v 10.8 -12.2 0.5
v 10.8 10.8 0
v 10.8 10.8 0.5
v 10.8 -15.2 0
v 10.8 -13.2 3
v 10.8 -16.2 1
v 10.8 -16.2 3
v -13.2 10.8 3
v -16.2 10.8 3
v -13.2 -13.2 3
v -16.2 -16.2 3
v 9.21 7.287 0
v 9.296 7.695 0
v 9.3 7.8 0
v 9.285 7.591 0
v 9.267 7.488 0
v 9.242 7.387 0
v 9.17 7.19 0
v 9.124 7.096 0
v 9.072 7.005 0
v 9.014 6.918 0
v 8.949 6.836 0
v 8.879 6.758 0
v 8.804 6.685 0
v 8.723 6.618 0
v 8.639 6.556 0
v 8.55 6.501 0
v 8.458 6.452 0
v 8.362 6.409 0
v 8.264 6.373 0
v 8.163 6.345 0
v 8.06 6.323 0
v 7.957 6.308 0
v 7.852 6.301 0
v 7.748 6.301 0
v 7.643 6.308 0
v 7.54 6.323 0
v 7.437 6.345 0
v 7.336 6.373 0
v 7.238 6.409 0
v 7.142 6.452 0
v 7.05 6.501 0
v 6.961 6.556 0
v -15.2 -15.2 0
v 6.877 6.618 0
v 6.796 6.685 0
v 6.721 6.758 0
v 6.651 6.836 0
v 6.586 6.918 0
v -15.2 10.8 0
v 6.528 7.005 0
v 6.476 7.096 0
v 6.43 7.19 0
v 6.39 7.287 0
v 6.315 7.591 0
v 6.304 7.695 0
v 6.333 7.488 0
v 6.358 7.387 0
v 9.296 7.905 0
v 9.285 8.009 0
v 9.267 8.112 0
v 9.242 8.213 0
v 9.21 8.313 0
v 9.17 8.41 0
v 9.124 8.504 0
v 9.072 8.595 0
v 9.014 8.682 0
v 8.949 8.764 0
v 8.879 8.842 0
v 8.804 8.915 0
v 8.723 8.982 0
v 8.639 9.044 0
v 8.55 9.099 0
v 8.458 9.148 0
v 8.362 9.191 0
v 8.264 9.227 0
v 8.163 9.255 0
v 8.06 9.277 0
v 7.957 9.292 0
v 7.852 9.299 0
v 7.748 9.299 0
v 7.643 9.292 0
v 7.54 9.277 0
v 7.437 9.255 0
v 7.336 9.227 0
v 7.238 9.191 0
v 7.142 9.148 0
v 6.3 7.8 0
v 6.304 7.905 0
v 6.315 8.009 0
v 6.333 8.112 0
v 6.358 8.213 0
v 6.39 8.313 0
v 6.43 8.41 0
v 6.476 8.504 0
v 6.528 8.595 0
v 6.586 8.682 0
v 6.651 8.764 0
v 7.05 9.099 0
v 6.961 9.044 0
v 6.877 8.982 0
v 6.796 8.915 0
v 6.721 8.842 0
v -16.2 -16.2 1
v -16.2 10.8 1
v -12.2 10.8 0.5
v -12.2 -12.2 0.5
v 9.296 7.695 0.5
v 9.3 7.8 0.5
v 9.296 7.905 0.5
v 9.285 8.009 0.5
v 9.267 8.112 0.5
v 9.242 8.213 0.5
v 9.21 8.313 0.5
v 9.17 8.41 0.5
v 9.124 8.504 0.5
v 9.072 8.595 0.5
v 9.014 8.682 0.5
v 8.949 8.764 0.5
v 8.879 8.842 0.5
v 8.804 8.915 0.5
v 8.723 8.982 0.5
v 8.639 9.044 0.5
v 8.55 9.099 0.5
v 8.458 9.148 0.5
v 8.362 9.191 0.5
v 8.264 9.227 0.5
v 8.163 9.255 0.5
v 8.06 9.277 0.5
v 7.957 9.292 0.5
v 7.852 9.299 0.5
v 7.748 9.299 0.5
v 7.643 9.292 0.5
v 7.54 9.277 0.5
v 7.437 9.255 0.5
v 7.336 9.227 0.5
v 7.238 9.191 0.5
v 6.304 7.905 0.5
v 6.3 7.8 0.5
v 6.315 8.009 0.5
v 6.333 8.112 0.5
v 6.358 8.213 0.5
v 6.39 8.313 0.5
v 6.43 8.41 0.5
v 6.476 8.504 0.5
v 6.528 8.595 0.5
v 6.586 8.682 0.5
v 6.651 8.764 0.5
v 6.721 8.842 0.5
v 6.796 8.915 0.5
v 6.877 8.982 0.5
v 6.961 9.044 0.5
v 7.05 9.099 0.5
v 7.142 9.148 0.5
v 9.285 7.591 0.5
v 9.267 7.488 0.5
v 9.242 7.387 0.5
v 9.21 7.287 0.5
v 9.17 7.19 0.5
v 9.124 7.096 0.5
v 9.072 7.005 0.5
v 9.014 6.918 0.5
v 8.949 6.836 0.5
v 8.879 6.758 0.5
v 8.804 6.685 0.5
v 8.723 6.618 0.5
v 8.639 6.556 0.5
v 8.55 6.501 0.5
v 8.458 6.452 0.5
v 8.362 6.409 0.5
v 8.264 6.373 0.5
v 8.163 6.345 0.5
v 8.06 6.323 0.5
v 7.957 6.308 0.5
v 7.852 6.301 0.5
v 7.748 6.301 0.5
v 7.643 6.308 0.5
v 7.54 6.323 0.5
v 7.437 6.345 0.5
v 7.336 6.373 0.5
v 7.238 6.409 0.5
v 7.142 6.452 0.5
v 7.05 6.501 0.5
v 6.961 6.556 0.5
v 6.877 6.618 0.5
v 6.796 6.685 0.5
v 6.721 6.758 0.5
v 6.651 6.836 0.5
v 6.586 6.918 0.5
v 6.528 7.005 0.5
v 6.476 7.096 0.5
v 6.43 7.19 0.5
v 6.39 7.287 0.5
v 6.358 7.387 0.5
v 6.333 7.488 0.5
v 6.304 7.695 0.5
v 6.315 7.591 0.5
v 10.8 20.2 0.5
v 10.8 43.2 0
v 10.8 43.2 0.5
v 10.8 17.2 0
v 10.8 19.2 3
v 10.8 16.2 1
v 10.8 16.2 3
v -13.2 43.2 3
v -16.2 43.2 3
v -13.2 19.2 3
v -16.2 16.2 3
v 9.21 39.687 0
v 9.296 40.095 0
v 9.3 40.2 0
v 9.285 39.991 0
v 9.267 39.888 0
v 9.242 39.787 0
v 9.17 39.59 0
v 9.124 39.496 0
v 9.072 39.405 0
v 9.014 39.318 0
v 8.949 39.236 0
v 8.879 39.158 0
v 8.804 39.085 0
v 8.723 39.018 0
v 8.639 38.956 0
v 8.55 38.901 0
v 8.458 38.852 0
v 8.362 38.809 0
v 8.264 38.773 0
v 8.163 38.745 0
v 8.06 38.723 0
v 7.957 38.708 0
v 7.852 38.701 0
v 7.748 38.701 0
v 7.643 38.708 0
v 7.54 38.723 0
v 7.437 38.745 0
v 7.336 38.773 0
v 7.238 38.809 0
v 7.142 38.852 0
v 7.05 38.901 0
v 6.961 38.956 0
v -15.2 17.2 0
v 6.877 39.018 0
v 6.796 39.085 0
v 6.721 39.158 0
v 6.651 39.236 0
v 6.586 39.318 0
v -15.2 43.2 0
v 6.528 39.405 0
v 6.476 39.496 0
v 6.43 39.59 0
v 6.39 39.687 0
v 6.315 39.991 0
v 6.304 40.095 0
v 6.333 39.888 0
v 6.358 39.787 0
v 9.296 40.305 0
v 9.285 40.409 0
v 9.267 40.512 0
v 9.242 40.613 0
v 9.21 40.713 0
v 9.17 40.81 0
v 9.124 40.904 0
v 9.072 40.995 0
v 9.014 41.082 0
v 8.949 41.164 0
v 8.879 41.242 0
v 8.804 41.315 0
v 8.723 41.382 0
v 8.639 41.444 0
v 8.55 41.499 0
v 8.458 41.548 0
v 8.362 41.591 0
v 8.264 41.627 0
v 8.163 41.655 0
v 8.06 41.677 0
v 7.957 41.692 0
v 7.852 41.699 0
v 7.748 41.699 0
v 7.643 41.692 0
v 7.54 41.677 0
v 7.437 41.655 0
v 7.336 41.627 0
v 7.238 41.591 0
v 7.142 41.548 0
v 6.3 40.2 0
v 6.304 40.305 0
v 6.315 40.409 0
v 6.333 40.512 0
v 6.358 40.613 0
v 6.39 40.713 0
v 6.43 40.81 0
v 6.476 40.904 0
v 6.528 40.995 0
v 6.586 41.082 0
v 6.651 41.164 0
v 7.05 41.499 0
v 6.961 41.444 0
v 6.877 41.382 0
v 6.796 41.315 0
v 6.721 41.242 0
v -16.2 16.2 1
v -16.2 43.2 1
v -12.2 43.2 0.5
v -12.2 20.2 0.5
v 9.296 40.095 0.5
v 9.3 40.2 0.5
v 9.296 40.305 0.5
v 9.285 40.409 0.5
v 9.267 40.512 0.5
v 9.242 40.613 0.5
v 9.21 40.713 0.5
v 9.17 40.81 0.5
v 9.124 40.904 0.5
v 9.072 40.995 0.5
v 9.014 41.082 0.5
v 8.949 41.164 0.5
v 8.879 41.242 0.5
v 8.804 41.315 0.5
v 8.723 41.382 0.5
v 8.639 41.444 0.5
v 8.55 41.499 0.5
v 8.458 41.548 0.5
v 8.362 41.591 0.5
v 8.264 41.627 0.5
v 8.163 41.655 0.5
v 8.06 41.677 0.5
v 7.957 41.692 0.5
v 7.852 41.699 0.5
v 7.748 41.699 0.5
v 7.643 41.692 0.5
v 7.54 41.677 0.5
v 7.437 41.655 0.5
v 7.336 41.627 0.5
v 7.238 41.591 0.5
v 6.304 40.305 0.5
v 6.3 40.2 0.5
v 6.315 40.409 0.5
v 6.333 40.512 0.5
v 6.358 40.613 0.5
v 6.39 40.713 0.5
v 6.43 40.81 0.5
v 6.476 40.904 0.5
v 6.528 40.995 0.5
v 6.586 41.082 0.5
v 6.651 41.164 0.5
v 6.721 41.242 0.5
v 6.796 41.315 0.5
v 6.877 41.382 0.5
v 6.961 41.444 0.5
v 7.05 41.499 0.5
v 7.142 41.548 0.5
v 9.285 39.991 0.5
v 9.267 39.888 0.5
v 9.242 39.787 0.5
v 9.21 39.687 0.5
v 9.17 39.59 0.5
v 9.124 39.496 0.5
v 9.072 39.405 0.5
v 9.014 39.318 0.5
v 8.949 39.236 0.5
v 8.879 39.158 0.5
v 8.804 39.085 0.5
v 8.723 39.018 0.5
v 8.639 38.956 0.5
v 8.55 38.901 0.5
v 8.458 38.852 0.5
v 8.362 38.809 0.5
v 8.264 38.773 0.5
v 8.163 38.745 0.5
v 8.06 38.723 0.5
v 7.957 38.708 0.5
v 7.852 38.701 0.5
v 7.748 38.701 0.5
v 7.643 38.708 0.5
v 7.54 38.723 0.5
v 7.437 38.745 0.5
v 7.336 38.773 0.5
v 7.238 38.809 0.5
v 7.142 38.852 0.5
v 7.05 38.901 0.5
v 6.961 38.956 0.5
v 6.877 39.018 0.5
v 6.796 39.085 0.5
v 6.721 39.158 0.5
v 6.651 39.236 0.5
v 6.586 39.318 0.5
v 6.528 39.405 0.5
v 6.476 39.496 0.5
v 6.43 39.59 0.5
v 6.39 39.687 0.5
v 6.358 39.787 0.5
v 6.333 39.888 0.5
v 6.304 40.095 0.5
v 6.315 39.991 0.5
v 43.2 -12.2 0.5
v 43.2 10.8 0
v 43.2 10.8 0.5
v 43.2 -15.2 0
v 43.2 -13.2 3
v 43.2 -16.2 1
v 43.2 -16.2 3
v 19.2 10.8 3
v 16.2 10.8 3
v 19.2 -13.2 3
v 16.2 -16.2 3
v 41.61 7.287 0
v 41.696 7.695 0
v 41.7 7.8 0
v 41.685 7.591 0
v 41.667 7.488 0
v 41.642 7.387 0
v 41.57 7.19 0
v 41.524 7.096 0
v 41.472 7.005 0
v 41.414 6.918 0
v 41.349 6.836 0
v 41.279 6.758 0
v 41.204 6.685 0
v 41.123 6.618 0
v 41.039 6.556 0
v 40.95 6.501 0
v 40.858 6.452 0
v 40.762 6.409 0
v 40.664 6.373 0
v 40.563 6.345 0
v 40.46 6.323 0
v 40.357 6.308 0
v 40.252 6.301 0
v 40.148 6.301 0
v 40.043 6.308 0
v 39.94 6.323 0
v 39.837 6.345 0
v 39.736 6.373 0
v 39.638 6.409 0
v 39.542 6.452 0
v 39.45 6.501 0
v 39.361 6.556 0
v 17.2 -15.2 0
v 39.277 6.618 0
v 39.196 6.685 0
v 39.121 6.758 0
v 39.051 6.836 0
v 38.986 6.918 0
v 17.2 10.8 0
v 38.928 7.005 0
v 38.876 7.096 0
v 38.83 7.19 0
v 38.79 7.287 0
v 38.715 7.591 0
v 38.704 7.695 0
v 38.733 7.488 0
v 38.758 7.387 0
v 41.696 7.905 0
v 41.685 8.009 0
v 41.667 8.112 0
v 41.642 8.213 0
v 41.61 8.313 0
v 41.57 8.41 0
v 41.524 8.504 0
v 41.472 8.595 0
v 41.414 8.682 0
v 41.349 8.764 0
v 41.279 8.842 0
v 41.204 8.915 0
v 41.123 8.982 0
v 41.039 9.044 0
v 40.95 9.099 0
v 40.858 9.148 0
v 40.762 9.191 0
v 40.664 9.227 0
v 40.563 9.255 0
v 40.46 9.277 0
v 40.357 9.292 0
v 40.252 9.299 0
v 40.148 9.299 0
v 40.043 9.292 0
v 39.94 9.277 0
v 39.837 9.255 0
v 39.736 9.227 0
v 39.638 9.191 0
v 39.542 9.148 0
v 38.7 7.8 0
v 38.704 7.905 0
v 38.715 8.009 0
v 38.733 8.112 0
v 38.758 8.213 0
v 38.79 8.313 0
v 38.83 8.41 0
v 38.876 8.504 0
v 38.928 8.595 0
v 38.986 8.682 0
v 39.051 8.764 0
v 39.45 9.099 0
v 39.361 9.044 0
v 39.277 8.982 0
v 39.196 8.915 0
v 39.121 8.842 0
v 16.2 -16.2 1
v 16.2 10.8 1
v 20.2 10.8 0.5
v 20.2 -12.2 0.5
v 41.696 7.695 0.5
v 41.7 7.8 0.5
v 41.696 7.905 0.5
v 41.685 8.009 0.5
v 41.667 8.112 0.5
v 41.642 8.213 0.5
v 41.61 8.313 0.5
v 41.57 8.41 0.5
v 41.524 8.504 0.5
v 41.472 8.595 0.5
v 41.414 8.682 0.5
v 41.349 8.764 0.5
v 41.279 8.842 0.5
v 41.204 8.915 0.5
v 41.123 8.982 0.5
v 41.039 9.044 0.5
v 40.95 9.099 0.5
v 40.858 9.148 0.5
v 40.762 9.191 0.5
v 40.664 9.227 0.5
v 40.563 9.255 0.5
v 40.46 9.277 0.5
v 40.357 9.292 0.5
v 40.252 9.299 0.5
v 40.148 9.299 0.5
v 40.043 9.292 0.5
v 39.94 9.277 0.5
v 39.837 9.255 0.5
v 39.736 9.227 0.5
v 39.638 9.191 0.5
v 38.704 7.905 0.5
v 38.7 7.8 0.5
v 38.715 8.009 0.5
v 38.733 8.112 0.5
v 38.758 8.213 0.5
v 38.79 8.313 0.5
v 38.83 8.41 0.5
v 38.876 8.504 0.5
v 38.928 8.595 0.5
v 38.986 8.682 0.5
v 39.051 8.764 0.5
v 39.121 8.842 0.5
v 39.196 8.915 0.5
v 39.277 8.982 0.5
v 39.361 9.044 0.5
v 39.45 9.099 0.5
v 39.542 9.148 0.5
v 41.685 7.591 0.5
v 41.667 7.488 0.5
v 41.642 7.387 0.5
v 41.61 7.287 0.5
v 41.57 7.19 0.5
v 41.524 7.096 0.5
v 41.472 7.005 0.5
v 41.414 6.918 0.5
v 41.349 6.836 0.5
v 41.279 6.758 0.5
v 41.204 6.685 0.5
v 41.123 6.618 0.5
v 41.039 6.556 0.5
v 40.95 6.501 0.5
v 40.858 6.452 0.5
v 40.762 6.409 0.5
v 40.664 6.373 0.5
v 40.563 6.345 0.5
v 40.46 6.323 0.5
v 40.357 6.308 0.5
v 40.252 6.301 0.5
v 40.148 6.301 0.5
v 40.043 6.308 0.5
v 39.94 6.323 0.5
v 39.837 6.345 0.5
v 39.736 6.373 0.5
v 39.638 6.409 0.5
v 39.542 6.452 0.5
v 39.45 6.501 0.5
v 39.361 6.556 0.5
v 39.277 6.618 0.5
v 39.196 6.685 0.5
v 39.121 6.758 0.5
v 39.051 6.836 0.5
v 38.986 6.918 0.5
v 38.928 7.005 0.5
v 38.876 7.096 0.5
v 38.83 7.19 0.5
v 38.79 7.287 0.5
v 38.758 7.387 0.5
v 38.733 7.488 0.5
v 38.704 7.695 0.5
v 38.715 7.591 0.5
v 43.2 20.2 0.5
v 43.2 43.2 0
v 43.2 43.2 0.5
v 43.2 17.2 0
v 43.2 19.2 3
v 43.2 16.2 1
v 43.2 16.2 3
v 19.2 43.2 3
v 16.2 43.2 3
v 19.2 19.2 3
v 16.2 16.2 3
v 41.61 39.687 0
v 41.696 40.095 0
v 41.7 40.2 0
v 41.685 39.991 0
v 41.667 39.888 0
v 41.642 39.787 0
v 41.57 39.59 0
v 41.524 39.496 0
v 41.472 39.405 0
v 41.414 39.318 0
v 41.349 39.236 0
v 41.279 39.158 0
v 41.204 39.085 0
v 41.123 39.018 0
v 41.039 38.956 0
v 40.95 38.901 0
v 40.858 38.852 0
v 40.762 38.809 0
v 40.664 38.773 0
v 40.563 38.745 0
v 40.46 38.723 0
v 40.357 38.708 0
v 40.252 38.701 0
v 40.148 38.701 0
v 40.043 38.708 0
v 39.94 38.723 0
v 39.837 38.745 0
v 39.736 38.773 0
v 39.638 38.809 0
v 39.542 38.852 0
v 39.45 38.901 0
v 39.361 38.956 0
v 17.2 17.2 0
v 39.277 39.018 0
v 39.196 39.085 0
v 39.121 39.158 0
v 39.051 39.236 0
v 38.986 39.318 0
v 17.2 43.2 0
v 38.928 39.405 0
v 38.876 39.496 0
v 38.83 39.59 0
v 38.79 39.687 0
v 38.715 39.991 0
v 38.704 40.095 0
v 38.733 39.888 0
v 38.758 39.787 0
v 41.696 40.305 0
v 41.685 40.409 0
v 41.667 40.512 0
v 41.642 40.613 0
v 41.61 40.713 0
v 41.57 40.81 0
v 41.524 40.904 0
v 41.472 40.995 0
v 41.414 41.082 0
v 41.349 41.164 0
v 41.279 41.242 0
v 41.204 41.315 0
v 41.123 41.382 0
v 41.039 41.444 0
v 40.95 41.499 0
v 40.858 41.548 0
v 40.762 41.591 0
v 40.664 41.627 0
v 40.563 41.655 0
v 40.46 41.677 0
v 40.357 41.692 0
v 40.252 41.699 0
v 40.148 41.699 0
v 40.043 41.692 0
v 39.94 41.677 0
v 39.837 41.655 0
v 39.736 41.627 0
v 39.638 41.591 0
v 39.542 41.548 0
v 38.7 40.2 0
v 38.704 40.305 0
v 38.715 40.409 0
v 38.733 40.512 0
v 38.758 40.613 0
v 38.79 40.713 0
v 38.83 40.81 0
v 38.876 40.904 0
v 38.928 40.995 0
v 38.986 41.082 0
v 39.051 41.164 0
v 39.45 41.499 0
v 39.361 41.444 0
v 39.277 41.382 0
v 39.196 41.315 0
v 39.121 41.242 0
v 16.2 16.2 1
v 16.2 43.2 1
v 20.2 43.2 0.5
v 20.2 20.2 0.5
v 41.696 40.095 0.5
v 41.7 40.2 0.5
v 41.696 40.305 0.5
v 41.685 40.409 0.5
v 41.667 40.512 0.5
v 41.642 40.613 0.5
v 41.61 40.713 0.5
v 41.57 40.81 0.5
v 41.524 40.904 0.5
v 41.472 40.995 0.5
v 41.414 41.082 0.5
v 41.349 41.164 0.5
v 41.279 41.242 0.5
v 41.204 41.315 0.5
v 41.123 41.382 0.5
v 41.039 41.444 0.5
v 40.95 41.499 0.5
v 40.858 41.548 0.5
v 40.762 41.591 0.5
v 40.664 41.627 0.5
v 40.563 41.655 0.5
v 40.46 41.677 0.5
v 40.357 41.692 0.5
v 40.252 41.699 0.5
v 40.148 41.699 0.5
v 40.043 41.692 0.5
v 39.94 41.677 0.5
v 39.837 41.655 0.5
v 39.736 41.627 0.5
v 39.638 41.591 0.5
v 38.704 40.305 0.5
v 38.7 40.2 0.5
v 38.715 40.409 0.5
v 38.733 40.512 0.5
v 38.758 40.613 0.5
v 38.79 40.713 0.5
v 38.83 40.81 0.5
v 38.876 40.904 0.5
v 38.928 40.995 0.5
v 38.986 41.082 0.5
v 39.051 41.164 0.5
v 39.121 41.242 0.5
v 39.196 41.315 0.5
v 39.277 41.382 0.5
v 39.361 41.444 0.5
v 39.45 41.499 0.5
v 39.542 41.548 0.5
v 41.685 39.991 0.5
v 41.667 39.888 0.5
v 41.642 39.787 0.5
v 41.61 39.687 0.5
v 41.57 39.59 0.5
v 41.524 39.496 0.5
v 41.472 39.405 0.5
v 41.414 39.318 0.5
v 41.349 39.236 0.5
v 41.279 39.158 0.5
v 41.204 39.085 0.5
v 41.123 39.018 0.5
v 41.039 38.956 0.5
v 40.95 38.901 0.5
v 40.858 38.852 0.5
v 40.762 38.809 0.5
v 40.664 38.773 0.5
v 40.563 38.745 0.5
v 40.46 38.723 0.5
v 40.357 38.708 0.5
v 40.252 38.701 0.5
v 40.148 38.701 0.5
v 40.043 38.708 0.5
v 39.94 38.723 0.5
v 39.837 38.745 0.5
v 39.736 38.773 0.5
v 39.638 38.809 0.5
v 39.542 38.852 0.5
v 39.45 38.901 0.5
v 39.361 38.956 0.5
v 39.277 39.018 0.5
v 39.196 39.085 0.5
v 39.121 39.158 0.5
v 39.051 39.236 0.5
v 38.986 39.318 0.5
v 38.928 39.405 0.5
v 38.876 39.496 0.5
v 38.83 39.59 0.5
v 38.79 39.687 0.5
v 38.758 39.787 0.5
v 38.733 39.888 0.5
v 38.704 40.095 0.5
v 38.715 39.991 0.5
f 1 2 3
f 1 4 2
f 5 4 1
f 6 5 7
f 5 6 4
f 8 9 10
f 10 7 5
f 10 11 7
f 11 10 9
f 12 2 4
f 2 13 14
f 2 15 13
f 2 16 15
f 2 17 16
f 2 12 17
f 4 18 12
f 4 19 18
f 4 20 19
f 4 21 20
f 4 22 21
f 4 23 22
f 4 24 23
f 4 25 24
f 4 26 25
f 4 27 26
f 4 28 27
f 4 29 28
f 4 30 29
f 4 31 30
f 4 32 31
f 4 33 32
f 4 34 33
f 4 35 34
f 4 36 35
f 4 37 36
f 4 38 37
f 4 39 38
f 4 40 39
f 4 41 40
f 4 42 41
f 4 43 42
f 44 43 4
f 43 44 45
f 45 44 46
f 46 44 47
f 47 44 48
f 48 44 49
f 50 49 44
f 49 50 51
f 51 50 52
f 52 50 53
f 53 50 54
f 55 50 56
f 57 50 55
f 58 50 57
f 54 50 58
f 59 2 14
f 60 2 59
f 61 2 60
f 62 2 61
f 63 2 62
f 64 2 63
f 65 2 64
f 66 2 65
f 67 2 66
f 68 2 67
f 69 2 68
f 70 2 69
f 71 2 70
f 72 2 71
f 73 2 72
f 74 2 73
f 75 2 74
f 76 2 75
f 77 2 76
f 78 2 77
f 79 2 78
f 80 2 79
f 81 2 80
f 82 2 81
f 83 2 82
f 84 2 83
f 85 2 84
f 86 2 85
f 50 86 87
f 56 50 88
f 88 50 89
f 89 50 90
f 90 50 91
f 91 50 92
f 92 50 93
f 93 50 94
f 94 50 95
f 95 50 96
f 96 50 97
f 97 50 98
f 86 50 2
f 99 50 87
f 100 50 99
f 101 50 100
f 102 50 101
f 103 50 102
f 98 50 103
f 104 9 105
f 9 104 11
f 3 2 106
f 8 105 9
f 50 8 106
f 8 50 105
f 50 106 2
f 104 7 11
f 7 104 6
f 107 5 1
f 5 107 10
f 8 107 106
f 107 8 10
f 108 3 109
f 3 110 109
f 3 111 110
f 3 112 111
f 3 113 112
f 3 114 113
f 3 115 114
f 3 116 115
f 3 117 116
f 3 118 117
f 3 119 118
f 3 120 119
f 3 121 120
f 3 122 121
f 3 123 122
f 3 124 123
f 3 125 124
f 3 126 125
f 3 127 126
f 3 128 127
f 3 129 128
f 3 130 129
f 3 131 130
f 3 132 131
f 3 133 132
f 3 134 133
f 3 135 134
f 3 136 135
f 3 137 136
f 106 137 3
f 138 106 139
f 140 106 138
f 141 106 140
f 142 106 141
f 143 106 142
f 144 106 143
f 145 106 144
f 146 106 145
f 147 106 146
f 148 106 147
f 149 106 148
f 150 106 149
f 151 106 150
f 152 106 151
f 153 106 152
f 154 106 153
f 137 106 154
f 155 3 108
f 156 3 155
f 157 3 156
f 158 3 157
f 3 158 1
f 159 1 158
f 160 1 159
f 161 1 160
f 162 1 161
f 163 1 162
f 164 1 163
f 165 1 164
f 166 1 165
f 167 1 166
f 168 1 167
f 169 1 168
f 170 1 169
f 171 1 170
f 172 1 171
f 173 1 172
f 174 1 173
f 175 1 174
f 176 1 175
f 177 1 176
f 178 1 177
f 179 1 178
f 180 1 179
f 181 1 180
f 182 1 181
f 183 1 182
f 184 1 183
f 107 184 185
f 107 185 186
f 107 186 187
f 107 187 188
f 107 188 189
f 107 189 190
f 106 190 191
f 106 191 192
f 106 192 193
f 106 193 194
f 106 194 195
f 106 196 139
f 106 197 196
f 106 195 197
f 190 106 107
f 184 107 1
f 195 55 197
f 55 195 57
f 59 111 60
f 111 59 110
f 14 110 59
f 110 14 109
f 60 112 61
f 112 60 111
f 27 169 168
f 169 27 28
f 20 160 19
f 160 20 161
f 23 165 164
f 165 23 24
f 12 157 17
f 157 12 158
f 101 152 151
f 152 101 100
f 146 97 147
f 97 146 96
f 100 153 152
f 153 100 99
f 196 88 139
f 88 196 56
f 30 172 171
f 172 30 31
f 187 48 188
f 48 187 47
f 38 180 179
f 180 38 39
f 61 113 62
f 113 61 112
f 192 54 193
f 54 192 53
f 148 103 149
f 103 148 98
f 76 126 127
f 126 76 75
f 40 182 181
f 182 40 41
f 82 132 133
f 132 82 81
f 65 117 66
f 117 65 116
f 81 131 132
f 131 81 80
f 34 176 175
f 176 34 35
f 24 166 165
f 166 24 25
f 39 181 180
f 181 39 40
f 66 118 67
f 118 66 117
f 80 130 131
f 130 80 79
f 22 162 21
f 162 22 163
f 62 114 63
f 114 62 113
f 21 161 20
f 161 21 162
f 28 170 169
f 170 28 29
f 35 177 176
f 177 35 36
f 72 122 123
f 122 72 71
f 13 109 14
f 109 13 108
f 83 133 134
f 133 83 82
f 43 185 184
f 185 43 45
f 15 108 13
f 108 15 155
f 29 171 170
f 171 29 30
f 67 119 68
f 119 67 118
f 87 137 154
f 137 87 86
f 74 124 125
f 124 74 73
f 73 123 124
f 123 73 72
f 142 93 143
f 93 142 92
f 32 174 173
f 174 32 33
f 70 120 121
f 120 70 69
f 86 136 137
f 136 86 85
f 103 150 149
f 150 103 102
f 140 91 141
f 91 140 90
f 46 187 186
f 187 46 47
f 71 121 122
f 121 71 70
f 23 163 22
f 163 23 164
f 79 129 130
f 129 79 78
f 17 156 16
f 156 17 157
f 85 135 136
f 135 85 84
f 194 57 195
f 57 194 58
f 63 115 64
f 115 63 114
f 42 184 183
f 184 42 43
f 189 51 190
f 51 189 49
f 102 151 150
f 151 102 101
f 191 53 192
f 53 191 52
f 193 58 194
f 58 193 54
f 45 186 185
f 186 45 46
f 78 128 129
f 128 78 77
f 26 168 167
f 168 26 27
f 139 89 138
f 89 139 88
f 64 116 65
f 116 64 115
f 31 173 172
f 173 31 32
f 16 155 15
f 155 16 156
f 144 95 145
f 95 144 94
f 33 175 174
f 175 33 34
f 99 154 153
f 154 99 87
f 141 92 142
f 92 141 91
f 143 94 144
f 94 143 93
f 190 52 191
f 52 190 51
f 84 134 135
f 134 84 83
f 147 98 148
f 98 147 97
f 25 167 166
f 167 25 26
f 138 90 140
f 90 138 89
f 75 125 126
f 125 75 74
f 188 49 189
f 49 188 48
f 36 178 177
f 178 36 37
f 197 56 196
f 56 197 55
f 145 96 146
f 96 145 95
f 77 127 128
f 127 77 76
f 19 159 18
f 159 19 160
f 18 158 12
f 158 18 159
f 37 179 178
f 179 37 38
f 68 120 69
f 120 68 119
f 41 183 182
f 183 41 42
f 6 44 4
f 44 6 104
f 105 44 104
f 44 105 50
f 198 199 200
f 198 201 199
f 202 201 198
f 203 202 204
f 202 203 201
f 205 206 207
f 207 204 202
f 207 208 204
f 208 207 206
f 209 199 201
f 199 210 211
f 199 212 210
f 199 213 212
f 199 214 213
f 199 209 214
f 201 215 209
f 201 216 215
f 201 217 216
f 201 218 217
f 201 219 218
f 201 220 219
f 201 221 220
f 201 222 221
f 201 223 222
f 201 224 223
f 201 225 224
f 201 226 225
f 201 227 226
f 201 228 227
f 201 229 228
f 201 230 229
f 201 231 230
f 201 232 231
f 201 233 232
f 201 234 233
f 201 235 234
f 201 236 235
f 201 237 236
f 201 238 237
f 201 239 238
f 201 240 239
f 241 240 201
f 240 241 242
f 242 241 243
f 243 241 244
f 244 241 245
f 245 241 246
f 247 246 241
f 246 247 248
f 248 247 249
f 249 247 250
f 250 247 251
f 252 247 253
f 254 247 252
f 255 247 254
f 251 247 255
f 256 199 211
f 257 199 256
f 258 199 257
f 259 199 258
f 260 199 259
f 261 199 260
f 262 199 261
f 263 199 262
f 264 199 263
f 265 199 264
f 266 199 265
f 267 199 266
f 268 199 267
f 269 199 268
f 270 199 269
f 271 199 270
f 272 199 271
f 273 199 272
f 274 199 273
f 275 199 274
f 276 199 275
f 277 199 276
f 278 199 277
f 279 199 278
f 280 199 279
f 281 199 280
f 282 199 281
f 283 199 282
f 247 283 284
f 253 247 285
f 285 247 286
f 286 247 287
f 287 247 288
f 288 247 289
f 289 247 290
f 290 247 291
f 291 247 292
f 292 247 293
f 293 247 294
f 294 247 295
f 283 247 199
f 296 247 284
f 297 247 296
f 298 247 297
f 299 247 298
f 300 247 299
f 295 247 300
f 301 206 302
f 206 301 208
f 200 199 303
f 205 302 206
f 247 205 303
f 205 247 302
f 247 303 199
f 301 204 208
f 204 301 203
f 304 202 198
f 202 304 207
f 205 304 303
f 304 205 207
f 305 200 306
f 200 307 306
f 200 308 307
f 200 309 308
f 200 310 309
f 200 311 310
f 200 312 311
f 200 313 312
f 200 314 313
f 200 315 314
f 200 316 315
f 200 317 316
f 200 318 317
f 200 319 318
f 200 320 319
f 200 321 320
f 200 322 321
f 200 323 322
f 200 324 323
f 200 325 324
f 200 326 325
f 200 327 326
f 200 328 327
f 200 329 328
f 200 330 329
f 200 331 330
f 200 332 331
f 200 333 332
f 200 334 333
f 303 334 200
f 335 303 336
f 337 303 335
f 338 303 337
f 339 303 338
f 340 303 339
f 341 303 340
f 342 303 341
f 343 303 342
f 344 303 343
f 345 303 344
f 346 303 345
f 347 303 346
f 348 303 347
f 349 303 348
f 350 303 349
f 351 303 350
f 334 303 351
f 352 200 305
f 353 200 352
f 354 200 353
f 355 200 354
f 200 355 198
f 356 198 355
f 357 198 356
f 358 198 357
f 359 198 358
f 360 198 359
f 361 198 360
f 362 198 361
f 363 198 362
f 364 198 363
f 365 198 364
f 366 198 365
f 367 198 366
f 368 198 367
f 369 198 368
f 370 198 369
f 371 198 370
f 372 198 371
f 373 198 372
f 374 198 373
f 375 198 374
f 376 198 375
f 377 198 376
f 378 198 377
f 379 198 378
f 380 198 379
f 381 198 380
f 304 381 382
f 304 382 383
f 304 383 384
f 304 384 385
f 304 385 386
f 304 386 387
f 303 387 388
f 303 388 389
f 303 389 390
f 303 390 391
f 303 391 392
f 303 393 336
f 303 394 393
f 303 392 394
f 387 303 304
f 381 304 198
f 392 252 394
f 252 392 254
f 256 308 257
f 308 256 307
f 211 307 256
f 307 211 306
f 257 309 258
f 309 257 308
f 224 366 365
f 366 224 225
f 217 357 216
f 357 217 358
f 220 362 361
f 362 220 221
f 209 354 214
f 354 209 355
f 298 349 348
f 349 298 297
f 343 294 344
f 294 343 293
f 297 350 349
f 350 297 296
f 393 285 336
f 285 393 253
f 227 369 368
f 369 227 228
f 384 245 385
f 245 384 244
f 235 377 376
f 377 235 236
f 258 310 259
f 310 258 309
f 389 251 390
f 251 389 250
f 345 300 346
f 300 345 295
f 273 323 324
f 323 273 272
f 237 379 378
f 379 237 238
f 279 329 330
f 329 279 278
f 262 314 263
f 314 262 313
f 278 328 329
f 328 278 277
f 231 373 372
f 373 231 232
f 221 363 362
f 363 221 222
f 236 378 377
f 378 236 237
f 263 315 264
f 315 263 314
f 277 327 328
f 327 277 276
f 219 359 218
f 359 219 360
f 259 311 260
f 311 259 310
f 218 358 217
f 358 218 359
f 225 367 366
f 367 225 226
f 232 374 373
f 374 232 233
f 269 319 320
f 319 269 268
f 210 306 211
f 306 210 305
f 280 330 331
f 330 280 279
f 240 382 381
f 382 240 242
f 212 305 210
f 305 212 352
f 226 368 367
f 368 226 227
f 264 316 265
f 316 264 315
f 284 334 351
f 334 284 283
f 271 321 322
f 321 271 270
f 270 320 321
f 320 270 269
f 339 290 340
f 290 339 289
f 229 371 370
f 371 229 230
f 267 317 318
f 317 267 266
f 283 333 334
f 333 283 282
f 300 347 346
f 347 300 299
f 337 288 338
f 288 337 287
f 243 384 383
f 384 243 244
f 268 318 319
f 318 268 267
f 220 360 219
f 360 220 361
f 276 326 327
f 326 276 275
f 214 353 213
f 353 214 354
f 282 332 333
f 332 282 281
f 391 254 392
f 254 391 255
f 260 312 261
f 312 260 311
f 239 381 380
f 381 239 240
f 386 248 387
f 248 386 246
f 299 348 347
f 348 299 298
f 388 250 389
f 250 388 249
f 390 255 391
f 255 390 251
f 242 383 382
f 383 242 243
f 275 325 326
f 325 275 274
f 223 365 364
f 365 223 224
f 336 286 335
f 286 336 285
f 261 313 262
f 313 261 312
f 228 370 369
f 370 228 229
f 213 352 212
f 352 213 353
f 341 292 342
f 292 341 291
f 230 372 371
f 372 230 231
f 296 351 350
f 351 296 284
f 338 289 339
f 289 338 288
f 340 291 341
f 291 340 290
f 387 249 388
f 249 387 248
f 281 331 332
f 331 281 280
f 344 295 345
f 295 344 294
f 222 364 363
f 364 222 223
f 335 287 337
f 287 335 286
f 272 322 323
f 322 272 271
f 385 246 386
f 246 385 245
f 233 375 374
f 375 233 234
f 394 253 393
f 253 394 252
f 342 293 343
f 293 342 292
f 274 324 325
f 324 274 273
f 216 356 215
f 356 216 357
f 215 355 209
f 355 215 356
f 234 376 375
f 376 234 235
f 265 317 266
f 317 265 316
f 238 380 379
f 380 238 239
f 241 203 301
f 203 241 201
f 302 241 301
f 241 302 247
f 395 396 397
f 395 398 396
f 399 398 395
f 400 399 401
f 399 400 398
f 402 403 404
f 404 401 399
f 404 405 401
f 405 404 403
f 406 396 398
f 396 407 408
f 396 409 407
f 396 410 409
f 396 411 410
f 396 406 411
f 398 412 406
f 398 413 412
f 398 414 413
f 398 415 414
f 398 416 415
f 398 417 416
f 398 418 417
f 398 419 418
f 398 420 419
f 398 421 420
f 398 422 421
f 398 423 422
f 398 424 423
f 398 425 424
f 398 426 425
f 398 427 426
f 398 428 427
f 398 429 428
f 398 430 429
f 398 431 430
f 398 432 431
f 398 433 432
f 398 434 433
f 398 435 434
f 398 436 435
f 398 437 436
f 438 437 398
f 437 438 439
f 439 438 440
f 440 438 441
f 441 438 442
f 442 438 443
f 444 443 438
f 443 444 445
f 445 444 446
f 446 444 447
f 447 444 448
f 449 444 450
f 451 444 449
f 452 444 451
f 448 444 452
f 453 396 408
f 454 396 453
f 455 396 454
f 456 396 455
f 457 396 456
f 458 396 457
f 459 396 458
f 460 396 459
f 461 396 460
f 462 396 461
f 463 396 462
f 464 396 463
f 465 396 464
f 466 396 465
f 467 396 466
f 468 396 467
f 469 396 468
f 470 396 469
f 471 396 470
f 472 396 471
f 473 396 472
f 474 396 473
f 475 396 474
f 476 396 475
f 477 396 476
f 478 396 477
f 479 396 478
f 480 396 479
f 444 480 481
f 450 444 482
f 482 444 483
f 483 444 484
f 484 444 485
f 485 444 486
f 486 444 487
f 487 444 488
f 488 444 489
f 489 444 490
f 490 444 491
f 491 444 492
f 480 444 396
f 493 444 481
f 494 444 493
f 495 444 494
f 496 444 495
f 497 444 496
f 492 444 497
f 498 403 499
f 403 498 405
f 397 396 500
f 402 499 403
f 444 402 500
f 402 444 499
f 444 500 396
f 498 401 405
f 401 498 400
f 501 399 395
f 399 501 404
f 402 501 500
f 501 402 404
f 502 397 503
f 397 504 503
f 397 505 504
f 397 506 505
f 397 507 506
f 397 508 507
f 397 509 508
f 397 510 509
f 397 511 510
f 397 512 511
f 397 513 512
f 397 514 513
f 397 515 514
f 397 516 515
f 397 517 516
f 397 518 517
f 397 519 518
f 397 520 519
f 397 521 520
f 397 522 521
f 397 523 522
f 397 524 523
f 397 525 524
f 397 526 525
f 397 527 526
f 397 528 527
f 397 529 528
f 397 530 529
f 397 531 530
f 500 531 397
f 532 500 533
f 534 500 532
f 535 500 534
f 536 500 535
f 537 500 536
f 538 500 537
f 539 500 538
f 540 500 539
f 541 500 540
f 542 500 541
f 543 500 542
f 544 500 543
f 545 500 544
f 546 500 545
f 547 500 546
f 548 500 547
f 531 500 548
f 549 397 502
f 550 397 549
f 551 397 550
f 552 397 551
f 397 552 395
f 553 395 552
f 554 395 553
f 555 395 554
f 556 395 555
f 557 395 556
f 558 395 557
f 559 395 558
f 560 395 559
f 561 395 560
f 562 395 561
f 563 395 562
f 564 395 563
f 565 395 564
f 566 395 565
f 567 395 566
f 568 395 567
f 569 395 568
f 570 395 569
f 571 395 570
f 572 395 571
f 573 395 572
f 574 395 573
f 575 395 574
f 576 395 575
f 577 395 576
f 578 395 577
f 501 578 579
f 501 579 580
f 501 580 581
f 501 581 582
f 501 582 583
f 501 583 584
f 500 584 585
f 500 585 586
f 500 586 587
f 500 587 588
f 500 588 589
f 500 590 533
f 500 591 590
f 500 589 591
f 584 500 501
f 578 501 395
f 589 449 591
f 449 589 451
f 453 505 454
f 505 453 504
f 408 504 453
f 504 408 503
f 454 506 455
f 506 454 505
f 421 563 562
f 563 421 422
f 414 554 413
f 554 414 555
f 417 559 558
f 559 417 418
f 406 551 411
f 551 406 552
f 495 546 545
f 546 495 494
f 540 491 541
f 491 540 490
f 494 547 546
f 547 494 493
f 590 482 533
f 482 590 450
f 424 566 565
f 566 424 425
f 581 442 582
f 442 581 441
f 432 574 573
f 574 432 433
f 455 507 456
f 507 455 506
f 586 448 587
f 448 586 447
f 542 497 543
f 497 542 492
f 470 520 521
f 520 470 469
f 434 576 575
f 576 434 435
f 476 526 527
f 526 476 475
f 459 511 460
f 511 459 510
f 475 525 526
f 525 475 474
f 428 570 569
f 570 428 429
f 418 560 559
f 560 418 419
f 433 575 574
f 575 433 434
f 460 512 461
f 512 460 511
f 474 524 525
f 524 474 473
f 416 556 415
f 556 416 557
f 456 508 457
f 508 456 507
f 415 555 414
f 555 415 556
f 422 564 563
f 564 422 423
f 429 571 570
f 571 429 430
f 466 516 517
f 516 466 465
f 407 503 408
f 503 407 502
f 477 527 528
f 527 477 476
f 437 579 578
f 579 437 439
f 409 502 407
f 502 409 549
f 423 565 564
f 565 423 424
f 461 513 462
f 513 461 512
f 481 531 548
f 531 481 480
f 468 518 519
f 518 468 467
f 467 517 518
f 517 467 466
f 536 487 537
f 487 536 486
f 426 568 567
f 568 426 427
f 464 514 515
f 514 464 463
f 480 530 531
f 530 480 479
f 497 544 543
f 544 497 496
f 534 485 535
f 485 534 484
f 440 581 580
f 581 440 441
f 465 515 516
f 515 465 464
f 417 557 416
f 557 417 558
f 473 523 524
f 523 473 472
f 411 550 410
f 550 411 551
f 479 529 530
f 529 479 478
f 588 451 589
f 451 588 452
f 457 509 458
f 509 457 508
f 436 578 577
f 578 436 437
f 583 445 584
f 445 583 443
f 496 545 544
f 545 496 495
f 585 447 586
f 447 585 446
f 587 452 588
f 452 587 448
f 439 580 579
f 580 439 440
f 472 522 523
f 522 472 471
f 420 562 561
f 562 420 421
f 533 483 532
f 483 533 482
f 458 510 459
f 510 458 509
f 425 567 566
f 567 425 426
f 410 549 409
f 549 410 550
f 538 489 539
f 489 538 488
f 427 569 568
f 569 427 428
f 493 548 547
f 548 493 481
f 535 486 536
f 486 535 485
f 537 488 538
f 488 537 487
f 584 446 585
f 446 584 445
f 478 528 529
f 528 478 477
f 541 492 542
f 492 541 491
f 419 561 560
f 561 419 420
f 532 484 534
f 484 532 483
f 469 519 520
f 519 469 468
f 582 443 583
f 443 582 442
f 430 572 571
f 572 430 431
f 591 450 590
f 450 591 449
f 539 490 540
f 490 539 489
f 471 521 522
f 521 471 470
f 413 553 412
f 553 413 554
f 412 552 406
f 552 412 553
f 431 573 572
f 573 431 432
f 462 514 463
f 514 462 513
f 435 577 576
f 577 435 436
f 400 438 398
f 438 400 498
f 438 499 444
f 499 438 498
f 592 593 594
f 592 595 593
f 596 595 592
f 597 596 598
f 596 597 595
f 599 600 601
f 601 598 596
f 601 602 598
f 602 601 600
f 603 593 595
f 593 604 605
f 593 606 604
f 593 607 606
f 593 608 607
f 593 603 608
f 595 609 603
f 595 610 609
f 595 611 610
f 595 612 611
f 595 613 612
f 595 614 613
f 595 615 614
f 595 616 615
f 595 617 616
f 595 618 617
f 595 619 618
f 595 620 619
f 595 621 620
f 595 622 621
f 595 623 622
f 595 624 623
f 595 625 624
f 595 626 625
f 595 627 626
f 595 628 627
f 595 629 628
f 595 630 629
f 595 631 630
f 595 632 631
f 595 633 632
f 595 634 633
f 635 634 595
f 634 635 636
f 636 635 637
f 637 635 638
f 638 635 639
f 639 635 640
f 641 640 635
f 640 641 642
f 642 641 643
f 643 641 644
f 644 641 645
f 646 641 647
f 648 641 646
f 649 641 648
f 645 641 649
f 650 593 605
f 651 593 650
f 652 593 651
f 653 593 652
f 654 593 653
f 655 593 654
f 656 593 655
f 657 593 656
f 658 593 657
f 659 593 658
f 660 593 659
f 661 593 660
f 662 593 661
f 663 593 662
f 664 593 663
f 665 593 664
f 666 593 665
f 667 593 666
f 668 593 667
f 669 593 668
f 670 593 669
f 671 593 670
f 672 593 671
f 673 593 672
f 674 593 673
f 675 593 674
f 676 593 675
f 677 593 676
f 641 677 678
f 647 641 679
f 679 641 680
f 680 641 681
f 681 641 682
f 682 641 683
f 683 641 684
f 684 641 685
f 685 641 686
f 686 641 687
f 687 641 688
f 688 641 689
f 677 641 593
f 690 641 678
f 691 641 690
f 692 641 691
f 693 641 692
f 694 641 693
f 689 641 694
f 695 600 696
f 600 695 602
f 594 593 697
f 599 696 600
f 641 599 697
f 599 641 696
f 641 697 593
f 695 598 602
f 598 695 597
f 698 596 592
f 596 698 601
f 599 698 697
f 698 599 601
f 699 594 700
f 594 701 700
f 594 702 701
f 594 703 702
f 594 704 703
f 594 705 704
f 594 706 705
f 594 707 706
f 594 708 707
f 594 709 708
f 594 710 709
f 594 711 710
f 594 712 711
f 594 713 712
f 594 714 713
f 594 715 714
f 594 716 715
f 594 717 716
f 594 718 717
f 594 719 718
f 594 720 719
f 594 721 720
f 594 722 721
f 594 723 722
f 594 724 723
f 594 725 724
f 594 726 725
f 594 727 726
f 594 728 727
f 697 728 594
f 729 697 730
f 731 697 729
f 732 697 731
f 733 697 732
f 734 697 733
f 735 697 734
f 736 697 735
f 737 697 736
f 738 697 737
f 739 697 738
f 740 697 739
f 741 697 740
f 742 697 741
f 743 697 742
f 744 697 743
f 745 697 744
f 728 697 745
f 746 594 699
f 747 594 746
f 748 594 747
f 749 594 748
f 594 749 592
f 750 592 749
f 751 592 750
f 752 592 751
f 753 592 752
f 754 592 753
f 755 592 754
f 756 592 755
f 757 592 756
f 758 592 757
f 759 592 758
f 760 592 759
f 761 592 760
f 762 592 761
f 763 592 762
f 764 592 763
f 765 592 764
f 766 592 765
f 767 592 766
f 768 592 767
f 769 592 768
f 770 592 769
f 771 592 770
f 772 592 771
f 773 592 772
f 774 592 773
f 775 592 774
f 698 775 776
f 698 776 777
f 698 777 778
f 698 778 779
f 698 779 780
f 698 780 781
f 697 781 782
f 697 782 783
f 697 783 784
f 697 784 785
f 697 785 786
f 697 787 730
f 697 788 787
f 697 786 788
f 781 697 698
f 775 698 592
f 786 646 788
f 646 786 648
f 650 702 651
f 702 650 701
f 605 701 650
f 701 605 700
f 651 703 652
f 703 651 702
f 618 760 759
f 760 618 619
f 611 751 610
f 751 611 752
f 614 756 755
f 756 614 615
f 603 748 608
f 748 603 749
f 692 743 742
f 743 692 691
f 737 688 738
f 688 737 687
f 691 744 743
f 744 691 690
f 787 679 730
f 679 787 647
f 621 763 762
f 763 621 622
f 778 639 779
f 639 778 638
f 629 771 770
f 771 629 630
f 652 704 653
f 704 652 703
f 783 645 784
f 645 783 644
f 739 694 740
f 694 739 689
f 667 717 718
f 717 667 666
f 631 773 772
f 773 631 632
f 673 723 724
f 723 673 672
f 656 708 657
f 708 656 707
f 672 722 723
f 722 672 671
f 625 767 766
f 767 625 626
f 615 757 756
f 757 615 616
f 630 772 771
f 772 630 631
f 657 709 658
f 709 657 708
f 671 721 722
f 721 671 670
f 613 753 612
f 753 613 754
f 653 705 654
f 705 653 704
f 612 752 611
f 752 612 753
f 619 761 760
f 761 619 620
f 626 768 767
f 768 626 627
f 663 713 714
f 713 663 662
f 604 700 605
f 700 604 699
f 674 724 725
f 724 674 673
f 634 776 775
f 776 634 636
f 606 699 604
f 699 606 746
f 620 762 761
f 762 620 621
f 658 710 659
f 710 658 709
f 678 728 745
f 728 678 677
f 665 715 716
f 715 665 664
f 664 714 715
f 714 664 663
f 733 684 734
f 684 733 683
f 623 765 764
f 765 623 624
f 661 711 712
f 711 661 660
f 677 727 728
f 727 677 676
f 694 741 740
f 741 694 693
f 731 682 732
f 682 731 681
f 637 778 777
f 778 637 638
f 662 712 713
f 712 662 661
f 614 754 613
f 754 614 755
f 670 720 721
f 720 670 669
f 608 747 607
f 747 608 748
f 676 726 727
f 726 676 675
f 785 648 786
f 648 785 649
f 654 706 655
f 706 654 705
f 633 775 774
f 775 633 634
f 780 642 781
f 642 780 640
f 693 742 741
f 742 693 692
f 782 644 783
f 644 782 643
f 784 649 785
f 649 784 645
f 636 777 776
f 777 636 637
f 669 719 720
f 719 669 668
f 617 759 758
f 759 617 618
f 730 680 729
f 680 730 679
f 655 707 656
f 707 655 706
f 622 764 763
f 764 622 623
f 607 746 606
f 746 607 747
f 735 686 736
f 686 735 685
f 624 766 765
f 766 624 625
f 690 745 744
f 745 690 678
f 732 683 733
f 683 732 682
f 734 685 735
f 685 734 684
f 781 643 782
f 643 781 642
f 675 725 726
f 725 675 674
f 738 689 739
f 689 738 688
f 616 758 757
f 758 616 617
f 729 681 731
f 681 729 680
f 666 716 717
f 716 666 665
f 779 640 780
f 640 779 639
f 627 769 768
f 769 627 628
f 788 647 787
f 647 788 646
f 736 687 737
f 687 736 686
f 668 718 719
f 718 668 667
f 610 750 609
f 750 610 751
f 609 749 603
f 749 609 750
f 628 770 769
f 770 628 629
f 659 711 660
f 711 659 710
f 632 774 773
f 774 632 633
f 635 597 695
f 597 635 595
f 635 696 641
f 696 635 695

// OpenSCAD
FRAME_THICKNESS =   8/2; // to 9

ATOM = 0.01;

HOLE_POSITION = 20+4;
HOLE_DIAMETER = 3;
GUIDE_SIZE = HOLE_POSITION + 3; //28 +4;
HEIGHT = 3;
THICKNESS = .5;
CHAMFER = 1;

$fn= 90;

module piece() {
    intersection() {
        difference() {
            cube([GUIDE_SIZE, GUIDE_SIZE, HEIGHT]);

            hull() {
                translate([FRAME_THICKNESS, FRAME_THICKNESS, THICKNESS])
                cube([GUIDE_SIZE, GUIDE_SIZE, HEIGHT]);

                translate([FRAME_THICKNESS-HEIGHT/3, FRAME_THICKNESS-HEIGHT/3, HEIGHT])
                cube([GUIDE_SIZE, GUIDE_SIZE, HEIGHT]);
            }
            
            translate([HOLE_POSITION, HOLE_POSITION, 0])
            cylinder(d=HOLE_DIAMETER, h=HEIGHT*3, center=true);
        }

        hull() {
            translate([0, 0, CHAMFER])
            cube([GUIDE_SIZE+CHAMFER, GUIDE_SIZE+CHAMFER, HEIGHT]);
            translate([CHAMFER, CHAMFER, 0])
            cube([GUIDE_SIZE, GUIDE_SIZE, HEIGHT]);
        }
    }
}

for (x=[-1, 1])
    for (y=[-1, 1])
        translate([x*GUIDE_SIZE*.6, y*GUIDE_SIZE*.6, 0])
        piece();
